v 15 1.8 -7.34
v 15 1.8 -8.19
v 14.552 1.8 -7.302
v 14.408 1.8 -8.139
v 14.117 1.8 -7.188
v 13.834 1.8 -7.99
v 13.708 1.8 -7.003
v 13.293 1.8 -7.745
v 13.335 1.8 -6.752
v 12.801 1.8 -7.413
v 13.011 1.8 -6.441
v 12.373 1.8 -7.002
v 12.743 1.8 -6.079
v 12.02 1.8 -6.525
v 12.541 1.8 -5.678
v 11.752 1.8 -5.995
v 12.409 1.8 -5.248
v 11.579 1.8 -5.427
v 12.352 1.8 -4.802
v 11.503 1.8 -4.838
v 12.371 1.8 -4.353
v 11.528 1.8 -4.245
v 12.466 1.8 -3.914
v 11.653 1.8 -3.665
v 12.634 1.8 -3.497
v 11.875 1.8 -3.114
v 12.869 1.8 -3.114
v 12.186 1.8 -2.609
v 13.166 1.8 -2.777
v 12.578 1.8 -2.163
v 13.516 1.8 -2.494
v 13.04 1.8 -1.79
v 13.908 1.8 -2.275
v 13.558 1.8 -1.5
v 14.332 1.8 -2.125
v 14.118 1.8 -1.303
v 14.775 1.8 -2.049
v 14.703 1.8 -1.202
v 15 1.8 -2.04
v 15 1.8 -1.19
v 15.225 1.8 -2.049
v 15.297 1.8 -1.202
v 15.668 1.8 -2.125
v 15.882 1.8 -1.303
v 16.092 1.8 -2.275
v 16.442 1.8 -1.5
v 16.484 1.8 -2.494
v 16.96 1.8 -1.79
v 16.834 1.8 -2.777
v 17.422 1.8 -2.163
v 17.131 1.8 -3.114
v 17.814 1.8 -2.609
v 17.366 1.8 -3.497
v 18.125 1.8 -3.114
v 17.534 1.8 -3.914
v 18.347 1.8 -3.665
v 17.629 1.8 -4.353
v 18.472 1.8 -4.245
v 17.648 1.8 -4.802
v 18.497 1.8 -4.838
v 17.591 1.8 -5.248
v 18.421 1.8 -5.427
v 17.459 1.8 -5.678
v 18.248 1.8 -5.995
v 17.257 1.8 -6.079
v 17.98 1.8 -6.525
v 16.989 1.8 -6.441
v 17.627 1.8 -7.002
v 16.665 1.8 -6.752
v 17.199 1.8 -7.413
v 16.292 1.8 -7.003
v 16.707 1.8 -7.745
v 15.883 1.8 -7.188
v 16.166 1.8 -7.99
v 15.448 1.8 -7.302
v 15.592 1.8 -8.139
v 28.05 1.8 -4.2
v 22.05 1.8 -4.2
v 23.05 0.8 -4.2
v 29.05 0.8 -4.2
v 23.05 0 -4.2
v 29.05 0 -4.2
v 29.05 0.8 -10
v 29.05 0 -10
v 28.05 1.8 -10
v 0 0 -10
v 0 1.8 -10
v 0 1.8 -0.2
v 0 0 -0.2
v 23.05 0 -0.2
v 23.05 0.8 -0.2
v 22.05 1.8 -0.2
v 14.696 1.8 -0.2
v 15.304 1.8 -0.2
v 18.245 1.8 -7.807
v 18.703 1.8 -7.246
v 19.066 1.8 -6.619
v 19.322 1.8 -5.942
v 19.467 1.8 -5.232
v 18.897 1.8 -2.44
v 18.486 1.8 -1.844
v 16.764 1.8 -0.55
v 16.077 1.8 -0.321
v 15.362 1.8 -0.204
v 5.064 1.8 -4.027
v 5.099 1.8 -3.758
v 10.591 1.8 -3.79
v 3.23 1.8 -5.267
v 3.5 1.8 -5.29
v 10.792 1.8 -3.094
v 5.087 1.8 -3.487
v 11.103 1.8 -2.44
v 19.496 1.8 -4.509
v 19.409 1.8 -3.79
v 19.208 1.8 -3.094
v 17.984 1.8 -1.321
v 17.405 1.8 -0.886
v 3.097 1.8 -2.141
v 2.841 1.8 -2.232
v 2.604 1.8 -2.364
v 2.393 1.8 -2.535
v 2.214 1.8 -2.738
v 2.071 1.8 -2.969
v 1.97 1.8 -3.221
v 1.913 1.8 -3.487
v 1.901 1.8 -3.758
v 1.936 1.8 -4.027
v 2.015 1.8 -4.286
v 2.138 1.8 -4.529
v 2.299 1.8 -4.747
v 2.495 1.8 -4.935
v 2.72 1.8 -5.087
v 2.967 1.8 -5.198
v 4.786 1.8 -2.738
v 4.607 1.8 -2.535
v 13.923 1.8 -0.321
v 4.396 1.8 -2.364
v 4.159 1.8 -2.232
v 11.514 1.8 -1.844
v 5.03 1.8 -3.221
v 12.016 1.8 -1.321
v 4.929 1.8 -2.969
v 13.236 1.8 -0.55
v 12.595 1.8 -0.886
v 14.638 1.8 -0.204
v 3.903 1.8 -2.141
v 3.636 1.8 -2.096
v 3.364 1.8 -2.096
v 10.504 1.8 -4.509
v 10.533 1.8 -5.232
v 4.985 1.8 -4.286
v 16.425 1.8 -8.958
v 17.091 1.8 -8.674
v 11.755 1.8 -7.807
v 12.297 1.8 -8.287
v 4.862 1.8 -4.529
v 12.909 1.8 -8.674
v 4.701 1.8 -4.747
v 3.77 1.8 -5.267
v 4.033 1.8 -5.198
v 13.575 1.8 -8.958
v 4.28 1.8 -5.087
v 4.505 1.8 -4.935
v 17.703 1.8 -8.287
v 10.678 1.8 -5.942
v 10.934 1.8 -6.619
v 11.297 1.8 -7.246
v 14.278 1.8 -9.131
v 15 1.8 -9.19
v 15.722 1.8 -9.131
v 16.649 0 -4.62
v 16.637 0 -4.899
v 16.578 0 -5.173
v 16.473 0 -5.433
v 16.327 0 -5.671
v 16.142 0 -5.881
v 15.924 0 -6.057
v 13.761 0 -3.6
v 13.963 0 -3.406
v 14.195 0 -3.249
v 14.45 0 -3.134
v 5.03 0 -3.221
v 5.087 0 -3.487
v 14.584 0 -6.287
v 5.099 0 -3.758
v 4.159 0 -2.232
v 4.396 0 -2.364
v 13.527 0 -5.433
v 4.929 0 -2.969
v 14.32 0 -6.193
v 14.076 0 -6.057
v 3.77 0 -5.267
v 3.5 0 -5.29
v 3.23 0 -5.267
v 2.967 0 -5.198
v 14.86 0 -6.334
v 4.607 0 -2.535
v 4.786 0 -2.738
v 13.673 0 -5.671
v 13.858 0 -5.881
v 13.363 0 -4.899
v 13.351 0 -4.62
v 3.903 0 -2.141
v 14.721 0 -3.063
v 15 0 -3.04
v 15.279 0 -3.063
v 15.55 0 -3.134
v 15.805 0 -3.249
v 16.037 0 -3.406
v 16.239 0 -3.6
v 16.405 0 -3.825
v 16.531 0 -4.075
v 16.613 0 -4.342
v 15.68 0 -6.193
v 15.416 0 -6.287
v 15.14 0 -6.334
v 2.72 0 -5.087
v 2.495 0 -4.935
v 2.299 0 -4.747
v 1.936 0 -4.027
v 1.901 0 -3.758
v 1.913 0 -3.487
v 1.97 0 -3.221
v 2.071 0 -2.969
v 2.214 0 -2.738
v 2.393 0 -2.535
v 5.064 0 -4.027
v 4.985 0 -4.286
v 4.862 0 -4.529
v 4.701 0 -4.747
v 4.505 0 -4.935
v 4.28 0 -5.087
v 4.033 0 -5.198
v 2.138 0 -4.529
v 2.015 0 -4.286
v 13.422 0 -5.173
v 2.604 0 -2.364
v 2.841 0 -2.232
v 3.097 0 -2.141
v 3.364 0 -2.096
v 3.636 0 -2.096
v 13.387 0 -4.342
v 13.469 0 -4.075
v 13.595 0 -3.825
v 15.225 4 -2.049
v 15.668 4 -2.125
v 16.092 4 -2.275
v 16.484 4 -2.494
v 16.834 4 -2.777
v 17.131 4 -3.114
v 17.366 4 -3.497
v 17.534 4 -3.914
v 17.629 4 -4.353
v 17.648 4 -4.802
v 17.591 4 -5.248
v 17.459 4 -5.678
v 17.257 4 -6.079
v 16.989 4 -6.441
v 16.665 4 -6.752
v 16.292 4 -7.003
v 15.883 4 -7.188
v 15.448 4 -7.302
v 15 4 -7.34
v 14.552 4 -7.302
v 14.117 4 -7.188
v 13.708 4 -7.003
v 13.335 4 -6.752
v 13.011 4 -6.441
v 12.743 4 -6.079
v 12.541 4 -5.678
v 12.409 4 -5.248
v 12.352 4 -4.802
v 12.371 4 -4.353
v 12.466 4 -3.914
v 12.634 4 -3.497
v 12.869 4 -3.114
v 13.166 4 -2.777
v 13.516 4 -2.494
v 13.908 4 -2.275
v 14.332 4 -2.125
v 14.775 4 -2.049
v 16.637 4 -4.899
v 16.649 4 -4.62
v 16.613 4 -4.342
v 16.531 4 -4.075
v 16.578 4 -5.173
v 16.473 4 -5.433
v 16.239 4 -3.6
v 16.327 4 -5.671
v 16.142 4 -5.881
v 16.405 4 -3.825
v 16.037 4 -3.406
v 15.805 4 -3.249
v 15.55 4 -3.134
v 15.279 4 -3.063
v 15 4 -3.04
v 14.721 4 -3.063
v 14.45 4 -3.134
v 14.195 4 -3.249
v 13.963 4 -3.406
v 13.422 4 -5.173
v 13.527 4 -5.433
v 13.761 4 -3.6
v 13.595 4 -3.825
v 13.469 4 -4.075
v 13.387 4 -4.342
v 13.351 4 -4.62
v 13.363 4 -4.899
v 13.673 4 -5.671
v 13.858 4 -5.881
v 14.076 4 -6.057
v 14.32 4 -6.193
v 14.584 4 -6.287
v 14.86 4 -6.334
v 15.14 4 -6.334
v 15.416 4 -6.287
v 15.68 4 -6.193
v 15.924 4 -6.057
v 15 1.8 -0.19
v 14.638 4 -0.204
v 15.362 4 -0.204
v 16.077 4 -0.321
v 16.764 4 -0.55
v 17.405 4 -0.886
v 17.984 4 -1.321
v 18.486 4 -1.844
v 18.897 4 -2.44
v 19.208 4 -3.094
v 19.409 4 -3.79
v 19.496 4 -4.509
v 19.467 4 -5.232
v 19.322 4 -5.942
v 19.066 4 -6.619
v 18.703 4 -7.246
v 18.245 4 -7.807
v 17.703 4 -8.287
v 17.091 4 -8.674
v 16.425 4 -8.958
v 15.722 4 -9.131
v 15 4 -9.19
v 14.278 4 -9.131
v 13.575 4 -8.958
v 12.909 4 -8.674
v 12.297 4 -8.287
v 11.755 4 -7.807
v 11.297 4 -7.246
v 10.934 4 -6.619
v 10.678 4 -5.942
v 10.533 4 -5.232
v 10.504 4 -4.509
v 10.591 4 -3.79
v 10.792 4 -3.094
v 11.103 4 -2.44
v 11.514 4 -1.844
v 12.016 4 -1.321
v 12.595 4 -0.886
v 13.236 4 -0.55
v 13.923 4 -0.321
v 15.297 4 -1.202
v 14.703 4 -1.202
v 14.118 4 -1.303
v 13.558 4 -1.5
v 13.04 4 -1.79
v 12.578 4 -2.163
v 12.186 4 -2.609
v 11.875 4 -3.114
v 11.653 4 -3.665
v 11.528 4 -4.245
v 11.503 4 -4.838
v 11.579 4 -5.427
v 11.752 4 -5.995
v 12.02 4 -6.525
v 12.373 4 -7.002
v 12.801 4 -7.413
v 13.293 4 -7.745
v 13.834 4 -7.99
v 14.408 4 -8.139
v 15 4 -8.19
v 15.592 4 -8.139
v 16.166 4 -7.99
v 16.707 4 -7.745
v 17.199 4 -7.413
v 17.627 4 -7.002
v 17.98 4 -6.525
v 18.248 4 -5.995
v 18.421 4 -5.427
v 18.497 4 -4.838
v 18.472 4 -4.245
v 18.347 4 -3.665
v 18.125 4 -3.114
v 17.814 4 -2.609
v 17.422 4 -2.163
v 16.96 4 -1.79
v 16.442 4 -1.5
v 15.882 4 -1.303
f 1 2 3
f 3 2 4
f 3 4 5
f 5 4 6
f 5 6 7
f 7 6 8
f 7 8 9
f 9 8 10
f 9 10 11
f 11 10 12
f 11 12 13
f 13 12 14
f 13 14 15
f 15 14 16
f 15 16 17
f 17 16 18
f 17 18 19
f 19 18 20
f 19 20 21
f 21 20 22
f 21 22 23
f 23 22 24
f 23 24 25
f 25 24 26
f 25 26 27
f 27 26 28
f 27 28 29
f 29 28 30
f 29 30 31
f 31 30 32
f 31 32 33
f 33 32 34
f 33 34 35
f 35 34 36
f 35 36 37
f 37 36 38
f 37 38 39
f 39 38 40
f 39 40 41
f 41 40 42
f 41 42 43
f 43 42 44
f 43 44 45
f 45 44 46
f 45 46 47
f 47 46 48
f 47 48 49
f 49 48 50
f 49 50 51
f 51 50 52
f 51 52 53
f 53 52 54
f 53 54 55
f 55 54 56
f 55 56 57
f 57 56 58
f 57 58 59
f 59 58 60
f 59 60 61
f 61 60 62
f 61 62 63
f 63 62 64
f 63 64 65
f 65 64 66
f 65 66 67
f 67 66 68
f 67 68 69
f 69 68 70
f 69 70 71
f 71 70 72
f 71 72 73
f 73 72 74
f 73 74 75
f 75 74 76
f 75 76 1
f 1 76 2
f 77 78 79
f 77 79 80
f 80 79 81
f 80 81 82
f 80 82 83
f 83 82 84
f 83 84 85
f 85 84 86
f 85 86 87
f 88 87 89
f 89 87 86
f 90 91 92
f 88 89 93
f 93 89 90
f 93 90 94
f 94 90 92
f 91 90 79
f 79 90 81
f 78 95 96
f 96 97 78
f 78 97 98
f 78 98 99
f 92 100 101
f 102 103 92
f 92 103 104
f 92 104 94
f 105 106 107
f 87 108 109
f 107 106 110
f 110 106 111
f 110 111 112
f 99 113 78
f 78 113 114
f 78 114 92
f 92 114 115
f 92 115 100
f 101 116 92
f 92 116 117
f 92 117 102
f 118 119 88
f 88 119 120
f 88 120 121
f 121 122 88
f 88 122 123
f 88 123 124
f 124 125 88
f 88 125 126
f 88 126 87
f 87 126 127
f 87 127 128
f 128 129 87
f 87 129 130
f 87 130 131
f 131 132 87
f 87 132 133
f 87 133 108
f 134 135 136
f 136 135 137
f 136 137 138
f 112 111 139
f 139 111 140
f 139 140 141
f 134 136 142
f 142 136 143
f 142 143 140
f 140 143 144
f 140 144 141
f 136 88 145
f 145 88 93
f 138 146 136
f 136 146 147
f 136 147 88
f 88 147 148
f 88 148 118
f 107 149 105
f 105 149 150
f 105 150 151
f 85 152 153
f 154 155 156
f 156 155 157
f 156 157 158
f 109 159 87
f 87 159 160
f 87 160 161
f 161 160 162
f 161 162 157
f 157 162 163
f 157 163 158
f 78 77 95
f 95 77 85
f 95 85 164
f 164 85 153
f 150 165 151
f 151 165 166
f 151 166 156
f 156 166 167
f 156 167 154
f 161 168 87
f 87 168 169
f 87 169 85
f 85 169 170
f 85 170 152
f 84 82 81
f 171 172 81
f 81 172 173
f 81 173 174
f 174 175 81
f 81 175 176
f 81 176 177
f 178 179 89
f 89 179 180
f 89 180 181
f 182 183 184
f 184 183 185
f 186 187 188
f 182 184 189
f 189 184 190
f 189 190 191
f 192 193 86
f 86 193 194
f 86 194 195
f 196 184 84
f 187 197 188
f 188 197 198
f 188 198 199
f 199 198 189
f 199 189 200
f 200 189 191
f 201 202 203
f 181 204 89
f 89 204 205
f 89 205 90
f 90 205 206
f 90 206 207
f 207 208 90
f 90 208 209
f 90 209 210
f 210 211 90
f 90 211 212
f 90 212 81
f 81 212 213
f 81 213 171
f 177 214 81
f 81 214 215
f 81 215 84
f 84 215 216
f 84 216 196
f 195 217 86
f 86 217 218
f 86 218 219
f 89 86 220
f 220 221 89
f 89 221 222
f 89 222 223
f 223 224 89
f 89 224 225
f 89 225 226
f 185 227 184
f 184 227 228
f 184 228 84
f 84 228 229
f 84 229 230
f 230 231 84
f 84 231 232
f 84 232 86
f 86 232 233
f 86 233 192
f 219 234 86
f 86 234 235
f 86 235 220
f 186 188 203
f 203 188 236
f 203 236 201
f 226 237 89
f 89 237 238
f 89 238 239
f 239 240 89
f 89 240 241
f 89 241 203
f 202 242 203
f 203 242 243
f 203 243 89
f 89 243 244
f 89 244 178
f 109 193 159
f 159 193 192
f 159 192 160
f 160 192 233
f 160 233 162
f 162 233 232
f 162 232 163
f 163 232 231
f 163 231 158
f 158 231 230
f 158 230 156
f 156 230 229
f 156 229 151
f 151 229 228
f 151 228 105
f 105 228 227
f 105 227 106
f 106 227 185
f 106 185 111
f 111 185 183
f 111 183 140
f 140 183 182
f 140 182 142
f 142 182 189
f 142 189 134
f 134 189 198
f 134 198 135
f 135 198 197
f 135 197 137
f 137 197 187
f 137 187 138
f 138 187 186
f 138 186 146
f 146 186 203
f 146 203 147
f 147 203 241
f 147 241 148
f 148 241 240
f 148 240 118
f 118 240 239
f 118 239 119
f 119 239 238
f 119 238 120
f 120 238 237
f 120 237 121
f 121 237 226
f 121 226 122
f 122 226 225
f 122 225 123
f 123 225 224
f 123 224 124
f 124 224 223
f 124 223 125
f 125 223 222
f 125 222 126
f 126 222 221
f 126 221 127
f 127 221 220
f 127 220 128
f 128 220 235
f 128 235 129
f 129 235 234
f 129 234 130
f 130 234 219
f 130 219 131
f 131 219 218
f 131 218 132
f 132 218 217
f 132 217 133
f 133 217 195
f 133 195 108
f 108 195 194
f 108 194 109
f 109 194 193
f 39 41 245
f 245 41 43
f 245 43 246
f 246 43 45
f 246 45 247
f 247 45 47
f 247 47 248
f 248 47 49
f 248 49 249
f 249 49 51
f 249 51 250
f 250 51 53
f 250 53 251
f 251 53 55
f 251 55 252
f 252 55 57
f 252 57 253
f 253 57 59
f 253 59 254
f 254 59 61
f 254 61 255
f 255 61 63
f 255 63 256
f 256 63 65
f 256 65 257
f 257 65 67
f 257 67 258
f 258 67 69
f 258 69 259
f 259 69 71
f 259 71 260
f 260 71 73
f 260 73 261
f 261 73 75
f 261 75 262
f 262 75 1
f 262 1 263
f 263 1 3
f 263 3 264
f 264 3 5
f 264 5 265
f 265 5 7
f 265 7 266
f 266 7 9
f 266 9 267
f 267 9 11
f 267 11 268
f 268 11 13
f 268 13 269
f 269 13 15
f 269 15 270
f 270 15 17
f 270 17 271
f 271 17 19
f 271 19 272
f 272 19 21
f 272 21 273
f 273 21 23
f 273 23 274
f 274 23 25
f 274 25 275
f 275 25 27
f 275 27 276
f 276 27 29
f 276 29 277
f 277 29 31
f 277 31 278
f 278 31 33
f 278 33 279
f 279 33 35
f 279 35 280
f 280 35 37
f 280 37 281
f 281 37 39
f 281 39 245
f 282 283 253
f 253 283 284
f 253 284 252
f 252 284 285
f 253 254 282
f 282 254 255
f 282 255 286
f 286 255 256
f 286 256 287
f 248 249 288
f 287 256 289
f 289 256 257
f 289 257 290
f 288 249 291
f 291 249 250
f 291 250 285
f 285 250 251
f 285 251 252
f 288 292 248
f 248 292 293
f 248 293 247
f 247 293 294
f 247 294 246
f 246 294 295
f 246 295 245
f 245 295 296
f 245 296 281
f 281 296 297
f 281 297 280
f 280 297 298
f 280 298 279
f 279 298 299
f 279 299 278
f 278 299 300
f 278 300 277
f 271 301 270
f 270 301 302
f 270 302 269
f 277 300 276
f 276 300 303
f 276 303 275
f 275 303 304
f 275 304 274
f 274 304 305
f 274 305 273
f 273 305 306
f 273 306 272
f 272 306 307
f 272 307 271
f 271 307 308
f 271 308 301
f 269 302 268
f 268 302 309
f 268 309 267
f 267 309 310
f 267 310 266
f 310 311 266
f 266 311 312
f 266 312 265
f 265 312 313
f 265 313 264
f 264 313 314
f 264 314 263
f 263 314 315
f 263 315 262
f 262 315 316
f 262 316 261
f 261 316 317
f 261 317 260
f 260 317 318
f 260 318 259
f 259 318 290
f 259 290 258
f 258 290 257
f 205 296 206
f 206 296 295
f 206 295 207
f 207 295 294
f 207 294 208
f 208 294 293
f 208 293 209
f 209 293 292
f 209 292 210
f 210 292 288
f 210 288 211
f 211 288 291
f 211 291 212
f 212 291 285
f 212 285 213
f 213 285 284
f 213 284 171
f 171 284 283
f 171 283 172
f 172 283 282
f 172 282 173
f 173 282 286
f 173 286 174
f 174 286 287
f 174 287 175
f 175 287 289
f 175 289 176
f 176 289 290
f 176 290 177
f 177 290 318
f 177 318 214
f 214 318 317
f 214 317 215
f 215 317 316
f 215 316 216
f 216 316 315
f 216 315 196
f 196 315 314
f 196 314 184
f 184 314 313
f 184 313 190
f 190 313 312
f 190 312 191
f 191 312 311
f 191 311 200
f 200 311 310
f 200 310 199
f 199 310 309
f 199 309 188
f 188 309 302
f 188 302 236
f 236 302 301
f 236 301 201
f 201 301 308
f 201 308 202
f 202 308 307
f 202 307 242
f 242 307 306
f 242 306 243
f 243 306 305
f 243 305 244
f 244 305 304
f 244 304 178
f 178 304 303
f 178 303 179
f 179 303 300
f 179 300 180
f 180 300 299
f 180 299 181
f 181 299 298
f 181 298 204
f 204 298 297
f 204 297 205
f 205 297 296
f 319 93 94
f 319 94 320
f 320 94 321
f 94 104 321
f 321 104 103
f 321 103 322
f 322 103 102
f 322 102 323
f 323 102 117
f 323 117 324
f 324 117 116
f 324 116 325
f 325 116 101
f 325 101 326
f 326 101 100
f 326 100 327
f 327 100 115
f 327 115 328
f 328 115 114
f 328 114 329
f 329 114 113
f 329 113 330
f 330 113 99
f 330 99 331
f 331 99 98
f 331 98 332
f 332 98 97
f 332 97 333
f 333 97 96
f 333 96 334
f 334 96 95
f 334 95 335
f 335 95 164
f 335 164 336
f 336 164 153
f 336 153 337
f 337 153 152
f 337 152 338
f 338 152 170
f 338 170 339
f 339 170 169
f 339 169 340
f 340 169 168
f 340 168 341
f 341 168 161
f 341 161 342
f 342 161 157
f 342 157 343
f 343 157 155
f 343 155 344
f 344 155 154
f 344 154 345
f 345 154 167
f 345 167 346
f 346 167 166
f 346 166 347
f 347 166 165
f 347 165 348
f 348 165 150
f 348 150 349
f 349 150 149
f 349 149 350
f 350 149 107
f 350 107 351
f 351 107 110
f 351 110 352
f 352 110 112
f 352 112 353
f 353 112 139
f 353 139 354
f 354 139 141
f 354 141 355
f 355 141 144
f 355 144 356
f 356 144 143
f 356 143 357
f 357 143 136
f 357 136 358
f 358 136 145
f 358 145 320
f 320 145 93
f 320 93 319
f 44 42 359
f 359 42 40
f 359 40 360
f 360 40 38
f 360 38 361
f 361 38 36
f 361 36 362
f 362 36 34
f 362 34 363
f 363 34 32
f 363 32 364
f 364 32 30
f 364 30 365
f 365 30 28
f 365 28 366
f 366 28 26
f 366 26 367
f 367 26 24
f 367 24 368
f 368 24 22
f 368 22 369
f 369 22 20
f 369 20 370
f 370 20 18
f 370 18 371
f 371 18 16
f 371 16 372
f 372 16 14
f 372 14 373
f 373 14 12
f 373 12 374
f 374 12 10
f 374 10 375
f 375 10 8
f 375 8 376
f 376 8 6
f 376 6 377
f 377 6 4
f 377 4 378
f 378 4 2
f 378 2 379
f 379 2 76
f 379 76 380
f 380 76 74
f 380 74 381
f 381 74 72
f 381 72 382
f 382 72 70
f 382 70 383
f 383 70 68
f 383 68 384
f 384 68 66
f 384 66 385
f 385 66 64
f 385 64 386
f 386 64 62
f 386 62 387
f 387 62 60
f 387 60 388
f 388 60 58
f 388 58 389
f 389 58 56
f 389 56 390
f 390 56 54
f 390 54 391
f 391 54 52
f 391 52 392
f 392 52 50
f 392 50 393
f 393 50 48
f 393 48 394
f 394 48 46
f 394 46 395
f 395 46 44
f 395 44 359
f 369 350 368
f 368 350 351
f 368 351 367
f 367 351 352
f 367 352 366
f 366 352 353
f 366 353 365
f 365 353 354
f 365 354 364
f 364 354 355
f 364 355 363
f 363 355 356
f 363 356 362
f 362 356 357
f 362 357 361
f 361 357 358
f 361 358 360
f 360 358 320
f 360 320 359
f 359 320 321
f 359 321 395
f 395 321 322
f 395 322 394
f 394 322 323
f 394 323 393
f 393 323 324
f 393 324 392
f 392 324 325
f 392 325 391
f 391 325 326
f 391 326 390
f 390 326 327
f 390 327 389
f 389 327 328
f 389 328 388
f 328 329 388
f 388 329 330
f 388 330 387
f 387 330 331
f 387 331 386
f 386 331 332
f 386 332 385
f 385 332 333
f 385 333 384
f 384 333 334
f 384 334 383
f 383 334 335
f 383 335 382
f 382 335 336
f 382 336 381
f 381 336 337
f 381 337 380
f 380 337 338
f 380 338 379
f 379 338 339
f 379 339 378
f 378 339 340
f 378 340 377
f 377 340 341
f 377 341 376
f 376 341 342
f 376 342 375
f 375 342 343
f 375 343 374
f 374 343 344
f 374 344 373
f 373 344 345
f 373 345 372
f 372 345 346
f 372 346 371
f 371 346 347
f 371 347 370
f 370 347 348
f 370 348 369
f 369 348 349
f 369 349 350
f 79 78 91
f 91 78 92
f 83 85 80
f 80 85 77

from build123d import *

# Parameters (mm, degrees)
BOSS_EXTRUDE1_DEPTH = 1.8
SKETCH3_R           = 1.6
CUT_EXTRUDE1_DEPTH  = 31.775680334
SKETCH4_R           = 2.65
BOSS_EXTRUDE2_DEPTH = 4
SKETCH5_R           = 1.65
CUT_EXTRUDE2_DEPTH  = 31.98229333
SKETCH7_R           = 4.5
SKETCH7_R_2         = 3.5
BOSS_EXTRUDE4_DEPTH = 2.2
CHAMFER2_SIZE       = 1


with BuildPart() as part:
    # Sketch1 → Boss-Extrude1 (new body)
    with BuildSketch(Plane(origin=(0, 0, 0), x_dir=(1, 0, 0), z_dir=(0, 1, 0))):
        Polygon((0, 0.2), (23.05, 0.2), (23.05, 4.2), (29.05, 4.2), (29.05, 10), (0, 10), (0, 4.2), align=None)
    extrude(amount=BOSS_EXTRUDE1_DEPTH)

    # Sketch3 → Cut-Extrude1 (cut, through all)
    with BuildSketch(Plane.XZ):
        with Locations(Location((3.5, -3.689750901, 0), (0, 0, 270))):
            Circle(SKETCH3_R)
    extrude(amount=-CUT_EXTRUDE1_DEPTH, mode=Mode.SUBTRACT)

    # Sketch4 → Boss-Extrude2 (add)
    with BuildSketch(Plane.XZ):
        with Locations(Location((15, -4.689750901, 0), (0, 0, 270))):
            Circle(SKETCH4_R)
    extrude(amount=-BOSS_EXTRUDE2_DEPTH)

    # Sketch5 → Cut-Extrude2 (cut, through all)
    with BuildSketch(Plane(origin=(0, 4, 0), x_dir=(1, 0, 0), z_dir=(0, 1, 0))):
        with Locations(Location((15, 4.689750901, 0), (0, 0, 270))):
            Circle(SKETCH5_R)
    extrude(amount=-CUT_EXTRUDE2_DEPTH, mode=Mode.SUBTRACT)

    # Sketch7 → Boss-Extrude4 (add)
    with BuildSketch(Plane(origin=(0, 1.8, 0), x_dir=(1, 0, 0), z_dir=(0, 1, 0))):
        with Locations(Location((15, 4.689750901, 0), (0, 0, 90))):
            Circle(SKETCH7_R)
        with Locations(Location((15, 4.689750901, 0), (0, 0, 90))):
            Circle(SKETCH7_R_2, mode=Mode.SUBTRACT)
    extrude(amount=BOSS_EXTRUDE4_DEPTH)

    # Chamfer2
    chamfer2_edges = [part.edges().sort_by_distance(p)[0] for p in [
        (23.05, 1.8, -2.2),
        (29.05, 1.8, -7.1),
    ]]
    chamfer(chamfer2_edges, length=CHAMFER2_SIZE)


solid = part.part
